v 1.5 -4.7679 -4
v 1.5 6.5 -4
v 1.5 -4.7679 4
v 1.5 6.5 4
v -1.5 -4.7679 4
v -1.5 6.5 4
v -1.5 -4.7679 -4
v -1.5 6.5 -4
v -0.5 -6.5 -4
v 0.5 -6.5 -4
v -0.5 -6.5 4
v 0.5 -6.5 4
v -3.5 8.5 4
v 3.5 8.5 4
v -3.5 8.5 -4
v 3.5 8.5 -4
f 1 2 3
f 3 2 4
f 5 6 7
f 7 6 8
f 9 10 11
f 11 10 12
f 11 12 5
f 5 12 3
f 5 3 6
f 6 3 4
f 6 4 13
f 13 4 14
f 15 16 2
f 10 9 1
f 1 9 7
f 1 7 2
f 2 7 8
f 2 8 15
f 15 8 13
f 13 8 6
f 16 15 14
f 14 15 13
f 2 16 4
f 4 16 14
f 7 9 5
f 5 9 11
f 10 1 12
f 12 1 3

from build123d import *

# Parameters (mm, degrees)
SKETCH1_W           = 3
SKETCH1_H           = 13
BOSS_EXTRUDE1_DEPTH = 4
BOSS_EXTRUDE2_DEPTH = 8
CHAMFER1_SIZE       = 1
CHAMFER1_SIZE2      = 1.732050808


with BuildPart() as part:
    # Sketch1 → Boss-Extrude1 (new, symmetric)
    with BuildSketch(Plane.XY):
        Rectangle(SKETCH1_W, SKETCH1_H)
    extrude(amount=BOSS_EXTRUDE1_DEPTH, both=True)

    # Sketch2 → Boss-Extrude2 (add)
    with BuildSketch(Plane.XY.offset(4)):
        Polygon((-1.5, 6.5), (-3.5, 8.5), (3.5, 8.5), (1.5, 6.5), align=None)
    extrude(amount=-BOSS_EXTRUDE2_DEPTH)

    # Chamfer1
    chamfer1_edges = [part.edges().sort_by_distance(p)[0] for p in [
        (1.5, -6.5, 0),
        (-1.5, -6.5, 0),
    ]]
    chamfer1_side = [part.faces().sort_by_distance(p)[0] for p in [
        (0, -6.5, 0),
    ]]
    chamfer(chamfer1_edges, length=CHAMFER1_SIZE, length2=CHAMFER1_SIZE2, reference=chamfer1_side[0])


solid = part.part
